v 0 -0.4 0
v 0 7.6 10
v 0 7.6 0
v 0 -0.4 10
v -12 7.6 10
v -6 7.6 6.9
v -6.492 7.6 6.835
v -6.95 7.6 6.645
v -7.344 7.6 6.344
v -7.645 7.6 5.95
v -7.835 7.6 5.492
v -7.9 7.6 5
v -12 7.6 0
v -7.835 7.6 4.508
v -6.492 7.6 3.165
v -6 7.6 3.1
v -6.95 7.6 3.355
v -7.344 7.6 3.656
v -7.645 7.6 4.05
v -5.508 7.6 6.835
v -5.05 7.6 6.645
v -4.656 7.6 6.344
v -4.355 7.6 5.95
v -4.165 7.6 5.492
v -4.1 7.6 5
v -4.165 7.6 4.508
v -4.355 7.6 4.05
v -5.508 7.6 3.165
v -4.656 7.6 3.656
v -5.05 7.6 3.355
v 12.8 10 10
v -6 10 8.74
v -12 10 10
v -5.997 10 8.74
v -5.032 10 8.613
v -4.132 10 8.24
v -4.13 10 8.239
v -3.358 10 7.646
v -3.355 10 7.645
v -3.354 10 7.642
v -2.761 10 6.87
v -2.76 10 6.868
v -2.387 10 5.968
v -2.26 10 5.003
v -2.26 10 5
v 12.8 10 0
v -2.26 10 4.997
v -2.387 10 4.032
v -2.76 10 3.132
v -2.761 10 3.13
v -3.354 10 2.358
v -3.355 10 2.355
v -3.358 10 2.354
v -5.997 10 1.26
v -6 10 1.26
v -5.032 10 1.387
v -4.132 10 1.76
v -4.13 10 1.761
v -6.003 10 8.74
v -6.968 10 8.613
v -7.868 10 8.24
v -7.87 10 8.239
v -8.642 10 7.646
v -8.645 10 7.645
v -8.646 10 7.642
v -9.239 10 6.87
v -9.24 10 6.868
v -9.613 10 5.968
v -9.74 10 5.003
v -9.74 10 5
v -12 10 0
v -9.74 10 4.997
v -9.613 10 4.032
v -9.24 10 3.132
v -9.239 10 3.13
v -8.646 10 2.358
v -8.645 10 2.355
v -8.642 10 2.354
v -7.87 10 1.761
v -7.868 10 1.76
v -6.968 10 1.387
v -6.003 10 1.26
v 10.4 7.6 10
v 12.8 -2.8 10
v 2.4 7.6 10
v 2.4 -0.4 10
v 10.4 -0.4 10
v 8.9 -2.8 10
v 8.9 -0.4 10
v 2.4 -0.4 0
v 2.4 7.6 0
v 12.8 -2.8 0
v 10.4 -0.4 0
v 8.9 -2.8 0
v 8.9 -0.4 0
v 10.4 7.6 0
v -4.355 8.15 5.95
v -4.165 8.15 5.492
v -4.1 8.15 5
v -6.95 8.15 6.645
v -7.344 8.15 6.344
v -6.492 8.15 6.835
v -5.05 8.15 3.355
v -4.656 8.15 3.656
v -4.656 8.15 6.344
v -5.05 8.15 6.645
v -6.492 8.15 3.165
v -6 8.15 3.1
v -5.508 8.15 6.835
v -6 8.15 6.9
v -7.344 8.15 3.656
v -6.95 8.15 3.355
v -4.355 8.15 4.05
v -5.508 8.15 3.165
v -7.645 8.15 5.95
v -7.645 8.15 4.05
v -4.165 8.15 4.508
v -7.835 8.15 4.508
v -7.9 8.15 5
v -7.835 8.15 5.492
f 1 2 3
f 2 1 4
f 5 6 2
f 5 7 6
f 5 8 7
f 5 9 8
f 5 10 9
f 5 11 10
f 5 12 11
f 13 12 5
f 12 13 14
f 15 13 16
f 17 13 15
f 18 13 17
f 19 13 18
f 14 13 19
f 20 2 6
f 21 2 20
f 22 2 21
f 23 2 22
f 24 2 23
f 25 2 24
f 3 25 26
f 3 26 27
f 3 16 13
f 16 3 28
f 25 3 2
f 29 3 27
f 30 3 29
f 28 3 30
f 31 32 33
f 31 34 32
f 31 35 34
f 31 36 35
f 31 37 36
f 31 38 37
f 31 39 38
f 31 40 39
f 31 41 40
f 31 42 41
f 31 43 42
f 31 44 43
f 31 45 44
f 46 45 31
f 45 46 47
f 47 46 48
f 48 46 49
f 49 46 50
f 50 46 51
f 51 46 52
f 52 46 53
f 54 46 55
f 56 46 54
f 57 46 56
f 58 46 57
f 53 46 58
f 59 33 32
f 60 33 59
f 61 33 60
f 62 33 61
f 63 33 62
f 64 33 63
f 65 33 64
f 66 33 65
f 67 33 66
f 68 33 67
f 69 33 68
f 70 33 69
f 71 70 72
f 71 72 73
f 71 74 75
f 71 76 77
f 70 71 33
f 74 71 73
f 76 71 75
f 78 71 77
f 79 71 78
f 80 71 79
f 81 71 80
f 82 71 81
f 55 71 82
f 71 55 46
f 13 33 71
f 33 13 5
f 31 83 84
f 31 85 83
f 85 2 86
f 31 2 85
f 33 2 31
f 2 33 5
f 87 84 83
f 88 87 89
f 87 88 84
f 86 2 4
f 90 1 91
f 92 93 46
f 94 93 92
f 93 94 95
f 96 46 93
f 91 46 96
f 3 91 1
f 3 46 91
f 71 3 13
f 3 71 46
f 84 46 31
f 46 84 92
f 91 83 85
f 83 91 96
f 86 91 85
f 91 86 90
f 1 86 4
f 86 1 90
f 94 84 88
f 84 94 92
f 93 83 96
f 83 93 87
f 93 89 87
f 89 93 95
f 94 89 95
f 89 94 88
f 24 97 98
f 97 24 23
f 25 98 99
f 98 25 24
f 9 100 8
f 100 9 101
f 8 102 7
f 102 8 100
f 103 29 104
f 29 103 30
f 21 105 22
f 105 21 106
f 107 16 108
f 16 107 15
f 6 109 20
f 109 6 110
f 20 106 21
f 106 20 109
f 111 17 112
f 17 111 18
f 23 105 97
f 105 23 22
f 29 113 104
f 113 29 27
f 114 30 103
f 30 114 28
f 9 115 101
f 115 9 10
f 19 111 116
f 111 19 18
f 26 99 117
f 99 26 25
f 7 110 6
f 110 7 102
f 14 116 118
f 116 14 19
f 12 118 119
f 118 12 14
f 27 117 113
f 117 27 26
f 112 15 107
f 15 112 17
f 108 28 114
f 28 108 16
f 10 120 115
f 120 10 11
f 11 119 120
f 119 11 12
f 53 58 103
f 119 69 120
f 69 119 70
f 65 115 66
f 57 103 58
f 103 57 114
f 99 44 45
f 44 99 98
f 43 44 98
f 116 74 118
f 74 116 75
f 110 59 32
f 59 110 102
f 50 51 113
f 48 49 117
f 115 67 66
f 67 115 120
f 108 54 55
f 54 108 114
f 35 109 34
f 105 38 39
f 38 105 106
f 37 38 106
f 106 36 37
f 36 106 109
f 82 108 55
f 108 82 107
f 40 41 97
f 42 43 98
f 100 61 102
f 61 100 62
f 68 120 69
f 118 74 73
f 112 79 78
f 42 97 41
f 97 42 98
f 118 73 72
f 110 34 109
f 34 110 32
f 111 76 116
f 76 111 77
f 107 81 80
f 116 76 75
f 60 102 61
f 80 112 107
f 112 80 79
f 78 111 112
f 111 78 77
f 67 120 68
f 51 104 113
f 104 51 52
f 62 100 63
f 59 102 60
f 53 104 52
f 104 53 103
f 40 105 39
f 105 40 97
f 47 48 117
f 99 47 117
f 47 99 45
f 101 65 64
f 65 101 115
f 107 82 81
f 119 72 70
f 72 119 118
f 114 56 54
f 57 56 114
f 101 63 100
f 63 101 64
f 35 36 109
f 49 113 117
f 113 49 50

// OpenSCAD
// Screw-on cable clip for the underside of the top: a saddle for one or two cables with a
// single countersunk #6 x 5/8 in screw (13 mm into the top). Two sizes in one file: set
// `bundle` to the cable diameter you want to hold. The cable pushes in past the lip, which
// flexes 1.5 mm. The file is in PRINT orientation: profile face down, no overhangs. PETG.

bundle = 8;     // cable or bundle diameter: 8 for a monitor lead, 14 for a small bundle
wall   = 2.4;
w      = 10;    // clip width along the cable
hole   = 3.8;
csk    = 7.5;
foot   = 12;    // screw foot length

module clip() {
  difference() {
    union() {
        translate([-foot, 0, 0]) cube([foot, w, wall]);                               // screw foot, against the underside
        translate([0, 0, 0]) cube([bundle + 2 * wall, w, wall]);                      // top of the saddle
        translate([0, 0, 0]) cube([wall, w, bundle + wall]);                          // one side
        translate([bundle + wall, 0, 0]) cube([wall, w, bundle + 2 * wall]);          // other side, longer, with a lip
        translate([bundle + wall - 1.5, 0, bundle + wall]) cube([1.5 + wall, w, wall]);  // the lip that keeps the cable in
    }
    translate([-foot / 2, w / 2, -1]) { cylinder(d = hole, h = wall + 2, $fn = 24); translate([0, 0, 1 - 0.01]) cylinder(d1 = csk, d2 = hole, h = (csk - hole) / 2 + 0.01, $fn = 24); }
  }
}
translate([0, w, 0]) rotate([90, 0, 0]) clip();   // profile face down for printing
